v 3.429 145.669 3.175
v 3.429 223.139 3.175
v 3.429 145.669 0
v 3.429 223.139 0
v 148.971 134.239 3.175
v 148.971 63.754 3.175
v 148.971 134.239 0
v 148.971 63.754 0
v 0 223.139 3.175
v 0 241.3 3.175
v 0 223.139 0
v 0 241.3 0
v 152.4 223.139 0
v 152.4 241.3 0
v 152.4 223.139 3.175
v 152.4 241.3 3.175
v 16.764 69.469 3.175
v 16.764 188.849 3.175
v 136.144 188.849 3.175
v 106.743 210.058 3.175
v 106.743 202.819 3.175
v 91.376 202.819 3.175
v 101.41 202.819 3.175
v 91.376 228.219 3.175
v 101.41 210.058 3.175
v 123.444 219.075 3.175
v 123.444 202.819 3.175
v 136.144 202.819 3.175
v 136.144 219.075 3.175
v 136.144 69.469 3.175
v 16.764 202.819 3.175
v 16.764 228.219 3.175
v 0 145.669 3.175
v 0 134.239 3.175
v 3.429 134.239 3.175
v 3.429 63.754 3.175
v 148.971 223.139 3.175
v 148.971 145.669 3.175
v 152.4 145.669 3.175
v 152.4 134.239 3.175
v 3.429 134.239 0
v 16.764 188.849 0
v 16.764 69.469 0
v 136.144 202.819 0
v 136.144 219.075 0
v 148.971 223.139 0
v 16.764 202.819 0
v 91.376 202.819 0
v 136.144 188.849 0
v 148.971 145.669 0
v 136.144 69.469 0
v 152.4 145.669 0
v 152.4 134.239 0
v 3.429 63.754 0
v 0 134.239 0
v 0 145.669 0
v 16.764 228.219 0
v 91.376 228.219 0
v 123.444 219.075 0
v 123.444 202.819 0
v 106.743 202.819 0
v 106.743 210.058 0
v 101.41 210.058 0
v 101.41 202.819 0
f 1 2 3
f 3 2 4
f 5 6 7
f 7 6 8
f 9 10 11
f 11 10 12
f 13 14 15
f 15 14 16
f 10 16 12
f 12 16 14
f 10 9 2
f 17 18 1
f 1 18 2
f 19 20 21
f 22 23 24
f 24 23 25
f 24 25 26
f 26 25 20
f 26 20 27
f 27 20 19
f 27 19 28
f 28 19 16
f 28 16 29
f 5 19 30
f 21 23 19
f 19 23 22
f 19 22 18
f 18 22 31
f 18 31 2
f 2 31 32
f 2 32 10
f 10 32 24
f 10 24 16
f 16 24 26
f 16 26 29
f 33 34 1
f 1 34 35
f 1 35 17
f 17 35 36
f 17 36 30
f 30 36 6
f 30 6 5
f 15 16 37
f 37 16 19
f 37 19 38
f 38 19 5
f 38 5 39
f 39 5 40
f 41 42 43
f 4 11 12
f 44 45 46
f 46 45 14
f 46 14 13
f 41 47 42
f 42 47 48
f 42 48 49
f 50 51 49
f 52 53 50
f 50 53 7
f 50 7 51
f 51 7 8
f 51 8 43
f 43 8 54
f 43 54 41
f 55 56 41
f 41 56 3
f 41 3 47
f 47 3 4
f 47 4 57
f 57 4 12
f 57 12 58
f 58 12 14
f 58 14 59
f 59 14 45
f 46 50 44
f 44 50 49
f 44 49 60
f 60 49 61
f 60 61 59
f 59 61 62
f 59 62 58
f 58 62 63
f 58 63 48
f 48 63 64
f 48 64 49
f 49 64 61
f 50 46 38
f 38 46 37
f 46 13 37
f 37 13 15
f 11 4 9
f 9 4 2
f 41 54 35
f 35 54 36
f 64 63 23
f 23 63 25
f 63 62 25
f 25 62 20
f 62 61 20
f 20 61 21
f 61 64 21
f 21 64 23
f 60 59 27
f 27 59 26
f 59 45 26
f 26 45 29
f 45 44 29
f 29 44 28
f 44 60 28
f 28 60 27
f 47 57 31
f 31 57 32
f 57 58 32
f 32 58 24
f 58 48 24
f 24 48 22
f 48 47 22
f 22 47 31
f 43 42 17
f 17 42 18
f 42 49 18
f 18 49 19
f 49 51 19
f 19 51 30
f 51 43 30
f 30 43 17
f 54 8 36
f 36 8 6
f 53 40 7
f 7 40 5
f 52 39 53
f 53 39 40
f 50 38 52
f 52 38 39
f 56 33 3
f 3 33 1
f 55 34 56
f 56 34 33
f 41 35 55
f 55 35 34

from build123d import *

# Parameters (mm, degrees)
SKETCH1_W           = 152.4
SKETCH1_H           = 241.3
BOSS_EXTRUDE1_DEPTH = 3.175
SKETCH2_W           = 3.429
SKETCH2_H           = 168.148
SKETCH2_H_2         = 40.386
CUT_EXTRUDE1_DEPTH  = 286.414664348
SKETCH3_W           = 119.38
SKETCH3_H           = 119.38
SKETCH3_W_2         = 74.6125
SKETCH3_H_2         = 25.4
SKETCH3_W_3         = 12.7
SKETCH3_H_3         = 16.256
SKETCH3_W_4         = 5.334
SKETCH3_H_4         = 7.239
CUT_EXTRUDE2_DEPTH  = 286.414664348
SKETCH4_W           = 184.697558878
SKETCH4_H           = 63.754
CUT_EXTRUDE5_DEPTH  = 286.414664348
SKETCH5_W           = 3.429
SKETCH5_H           = 11.43
BOSS_EXTRUDE2_DEPTH = 3.175


with BuildPart() as part:
    # Sketch1 → Boss-Extrude1 (new body)
    with BuildSketch(Plane.XY):
        with Locations((76.2, 120.65)):
            Rectangle(SKETCH1_W, SKETCH1_H)
    extrude(amount=BOSS_EXTRUDE1_DEPTH)

    # Sketch2 → Cut-Extrude1 (cut, through all)
    with BuildSketch(Plane.XY.offset(3.175)):
        with Locations((150.6855, 139.065)):
            Rectangle(SKETCH2_W, SKETCH2_H)
        with Locations((1.7145, 139.065)):
            Rectangle(SKETCH2_W, SKETCH2_H)
        with Locations((150.6855, 20.193)):
            Rectangle(SKETCH2_W, SKETCH2_H_2)
        with Locations((1.7145, 20.193)):
            Rectangle(SKETCH2_W, SKETCH2_H_2)
    extrude(amount=-CUT_EXTRUDE1_DEPTH, mode=Mode.SUBTRACT)

    # Sketch3 → Cut-Extrude2 (cut, through all)
    with BuildSketch(Plane.XY.offset(3.175)):
        Polygon((128.016, 57.15), (140.716, 57.15), (140.716, 44.45), align=None)
        Polygon((125.77093597, 42.20493597), (138.47093597, 42.20493597), (125.77093597, 54.90493597), align=None)
        Polygon((108.966, 57.15), (121.666, 57.15), (121.666, 44.45), align=None)
        Polygon((119.42093597, 42.20493597), (106.72093597, 54.90493597), (106.72093597, 42.20493597), align=None)
        Polygon((89.916, 57.15), (102.616, 57.15), (102.616, 44.45), align=None)
        Polygon((100.37093597, 42.20493597), (87.67093597, 54.90493597), (87.67093597, 42.20493597), align=None)
        Polygon((70.866, 57.15), (83.566, 57.15), (83.566, 44.45), align=None)
        Polygon((81.32093597, 42.20493597), (68.62093597, 54.90493597), (68.62093597, 42.20493597), align=None)
        Polygon((51.816, 57.15), (64.516, 57.15), (64.516, 44.45), align=None)
        Polygon((62.27093597, 42.20493597), (49.57093597, 54.90493597), (49.57093597, 42.20493597), align=None)
        Polygon((32.766, 57.15), (45.466, 57.15), (45.466, 44.45), align=None)
        Polygon((43.22093597, 42.20493597), (30.52093597, 54.90493597), (30.52093597, 42.20493597), align=None)
        Polygon((13.716, 57.15), (26.416, 57.15), (26.416, 44.45), align=None)
        Polygon((24.17093597, 42.20493597), (11.47093597, 54.90493597), (11.47093597, 42.20493597), align=None)
        Polygon((128.016, 38.1), (140.716, 38.1), (140.716, 25.4), align=None)
        with Locations((76.454, 129.159)):
            Rectangle(SKETCH3_W, SKETCH3_H)
        Polygon((125.77093597, 23.15493597), (138.47093597, 23.15493597), (125.77093597, 35.85493597), align=None)
        Polygon((108.966, 38.1), (121.666, 38.1), (121.666, 25.4), align=None)
        Polygon((119.42093597, 23.15493597), (106.72093597, 35.85493597), (106.72093597, 23.15493597), align=None)
        Polygon((89.916, 38.1), (102.616, 38.1), (102.616, 25.4), align=None)
        Polygon((100.37093597, 23.15493597), (87.67093597, 35.85493597), (87.67093597, 23.15493597), align=None)
        Polygon((70.866, 38.1), (83.566, 38.1), (83.566, 25.4), align=None)
        Polygon((81.32093597, 23.15493597), (68.62093597, 35.85493597), (68.62093597, 23.15493597), align=None)
        Polygon((51.816, 38.1), (64.516, 38.1), (64.516, 25.4), align=None)
        Polygon((62.27093597, 23.15493597), (49.57093597, 35.85493597), (49.57093597, 23.15493597), align=None)
        Polygon((32.766, 38.1), (45.466, 38.1), (45.466, 25.4), align=None)
        Polygon((43.22093597, 23.15493597), (30.52093597, 35.85493597), (30.52093597, 23.15493597), align=None)
        Polygon((13.716, 38.1), (26.416, 38.1), (26.416, 25.4), align=None)
        Polygon((24.17093597, 23.15493597), (11.47093597, 35.85493597), (11.47093597, 23.15493597), align=None)
        Polygon((128.016, 19.05), (140.716, 19.05), (140.716, 6.35), align=None)
        Polygon((125.77093597, 4.10493597), (138.47093597, 4.10493597), (125.77093597, 16.80493597), align=None)
        Polygon((108.966, 19.05), (121.666, 19.05), (121.666, 6.35), align=None)
        Polygon((119.42093597, 4.10493597), (106.72093597, 16.80493597), (106.72093597, 4.10493597), align=None)
        Polygon((89.916, 19.05), (102.616, 19.05), (102.616, 6.35), align=None)
        Polygon((100.37093597, 4.10493597), (87.67093597, 16.80493597), (87.67093597, 4.10493597), align=None)
        Polygon((70.866, 19.05), (83.566, 19.05), (83.566, 6.35), align=None)
        Polygon((81.32093597, 4.10493597), (68.62093597, 16.80493597), (68.62093597, 4.10493597), align=None)
        Polygon((51.816, 19.05), (64.516, 19.05), (64.516, 6.35), align=None)
        Polygon((62.27093597, 4.10493597), (49.57093597, 16.80493597), (49.57093597, 4.10493597), align=None)
        Polygon((32.766, 19.05), (45.466, 19.05), (45.466, 6.35), align=None)
        Polygon((43.22093597, 4.10493597), (30.52093597, 16.80493597), (30.52093597, 4.10493597), align=None)
        Polygon((13.716, 19.05), (26.416, 19.05), (26.416, 6.35), align=None)
        Polygon((24.17093597, 4.10493597), (11.47093597, 16.80493597), (11.47093597, 4.10493597), align=None)
        with Locations((54.07025, 215.519)):
            Rectangle(SKETCH3_W_2, SKETCH3_H_2)
        with Locations((129.794, 210.947)):
            Rectangle(SKETCH3_W_3, SKETCH3_H_3)
        with Locations((104.0765, 206.4385)):
            Rectangle(SKETCH3_W_4, SKETCH3_H_4)
    extrude(amount=-CUT_EXTRUDE2_DEPTH, mode=Mode.SUBTRACT)

    # Sketch4 → Cut-Extrude5 (cut, through all)
    with BuildSketch(Plane.XY.offset(3.175)):
        with Locations((77.04209933, 31.877)):
            Rectangle(SKETCH4_W, SKETCH4_H)
    extrude(amount=-CUT_EXTRUDE5_DEPTH, mode=Mode.SUBTRACT)

    # Sketch5 → Boss-Extrude2 (add)
    with BuildSketch(Plane.XY.offset(3.175)):
        with Locations((1.7145, 139.954)):
            Rectangle(SKETCH5_W, SKETCH5_H)
        with Locations((150.6855, 139.954)):
            Rectangle(SKETCH5_W, SKETCH5_H)
    extrude(amount=-BOSS_EXTRUDE2_DEPTH)


solid = part.part
